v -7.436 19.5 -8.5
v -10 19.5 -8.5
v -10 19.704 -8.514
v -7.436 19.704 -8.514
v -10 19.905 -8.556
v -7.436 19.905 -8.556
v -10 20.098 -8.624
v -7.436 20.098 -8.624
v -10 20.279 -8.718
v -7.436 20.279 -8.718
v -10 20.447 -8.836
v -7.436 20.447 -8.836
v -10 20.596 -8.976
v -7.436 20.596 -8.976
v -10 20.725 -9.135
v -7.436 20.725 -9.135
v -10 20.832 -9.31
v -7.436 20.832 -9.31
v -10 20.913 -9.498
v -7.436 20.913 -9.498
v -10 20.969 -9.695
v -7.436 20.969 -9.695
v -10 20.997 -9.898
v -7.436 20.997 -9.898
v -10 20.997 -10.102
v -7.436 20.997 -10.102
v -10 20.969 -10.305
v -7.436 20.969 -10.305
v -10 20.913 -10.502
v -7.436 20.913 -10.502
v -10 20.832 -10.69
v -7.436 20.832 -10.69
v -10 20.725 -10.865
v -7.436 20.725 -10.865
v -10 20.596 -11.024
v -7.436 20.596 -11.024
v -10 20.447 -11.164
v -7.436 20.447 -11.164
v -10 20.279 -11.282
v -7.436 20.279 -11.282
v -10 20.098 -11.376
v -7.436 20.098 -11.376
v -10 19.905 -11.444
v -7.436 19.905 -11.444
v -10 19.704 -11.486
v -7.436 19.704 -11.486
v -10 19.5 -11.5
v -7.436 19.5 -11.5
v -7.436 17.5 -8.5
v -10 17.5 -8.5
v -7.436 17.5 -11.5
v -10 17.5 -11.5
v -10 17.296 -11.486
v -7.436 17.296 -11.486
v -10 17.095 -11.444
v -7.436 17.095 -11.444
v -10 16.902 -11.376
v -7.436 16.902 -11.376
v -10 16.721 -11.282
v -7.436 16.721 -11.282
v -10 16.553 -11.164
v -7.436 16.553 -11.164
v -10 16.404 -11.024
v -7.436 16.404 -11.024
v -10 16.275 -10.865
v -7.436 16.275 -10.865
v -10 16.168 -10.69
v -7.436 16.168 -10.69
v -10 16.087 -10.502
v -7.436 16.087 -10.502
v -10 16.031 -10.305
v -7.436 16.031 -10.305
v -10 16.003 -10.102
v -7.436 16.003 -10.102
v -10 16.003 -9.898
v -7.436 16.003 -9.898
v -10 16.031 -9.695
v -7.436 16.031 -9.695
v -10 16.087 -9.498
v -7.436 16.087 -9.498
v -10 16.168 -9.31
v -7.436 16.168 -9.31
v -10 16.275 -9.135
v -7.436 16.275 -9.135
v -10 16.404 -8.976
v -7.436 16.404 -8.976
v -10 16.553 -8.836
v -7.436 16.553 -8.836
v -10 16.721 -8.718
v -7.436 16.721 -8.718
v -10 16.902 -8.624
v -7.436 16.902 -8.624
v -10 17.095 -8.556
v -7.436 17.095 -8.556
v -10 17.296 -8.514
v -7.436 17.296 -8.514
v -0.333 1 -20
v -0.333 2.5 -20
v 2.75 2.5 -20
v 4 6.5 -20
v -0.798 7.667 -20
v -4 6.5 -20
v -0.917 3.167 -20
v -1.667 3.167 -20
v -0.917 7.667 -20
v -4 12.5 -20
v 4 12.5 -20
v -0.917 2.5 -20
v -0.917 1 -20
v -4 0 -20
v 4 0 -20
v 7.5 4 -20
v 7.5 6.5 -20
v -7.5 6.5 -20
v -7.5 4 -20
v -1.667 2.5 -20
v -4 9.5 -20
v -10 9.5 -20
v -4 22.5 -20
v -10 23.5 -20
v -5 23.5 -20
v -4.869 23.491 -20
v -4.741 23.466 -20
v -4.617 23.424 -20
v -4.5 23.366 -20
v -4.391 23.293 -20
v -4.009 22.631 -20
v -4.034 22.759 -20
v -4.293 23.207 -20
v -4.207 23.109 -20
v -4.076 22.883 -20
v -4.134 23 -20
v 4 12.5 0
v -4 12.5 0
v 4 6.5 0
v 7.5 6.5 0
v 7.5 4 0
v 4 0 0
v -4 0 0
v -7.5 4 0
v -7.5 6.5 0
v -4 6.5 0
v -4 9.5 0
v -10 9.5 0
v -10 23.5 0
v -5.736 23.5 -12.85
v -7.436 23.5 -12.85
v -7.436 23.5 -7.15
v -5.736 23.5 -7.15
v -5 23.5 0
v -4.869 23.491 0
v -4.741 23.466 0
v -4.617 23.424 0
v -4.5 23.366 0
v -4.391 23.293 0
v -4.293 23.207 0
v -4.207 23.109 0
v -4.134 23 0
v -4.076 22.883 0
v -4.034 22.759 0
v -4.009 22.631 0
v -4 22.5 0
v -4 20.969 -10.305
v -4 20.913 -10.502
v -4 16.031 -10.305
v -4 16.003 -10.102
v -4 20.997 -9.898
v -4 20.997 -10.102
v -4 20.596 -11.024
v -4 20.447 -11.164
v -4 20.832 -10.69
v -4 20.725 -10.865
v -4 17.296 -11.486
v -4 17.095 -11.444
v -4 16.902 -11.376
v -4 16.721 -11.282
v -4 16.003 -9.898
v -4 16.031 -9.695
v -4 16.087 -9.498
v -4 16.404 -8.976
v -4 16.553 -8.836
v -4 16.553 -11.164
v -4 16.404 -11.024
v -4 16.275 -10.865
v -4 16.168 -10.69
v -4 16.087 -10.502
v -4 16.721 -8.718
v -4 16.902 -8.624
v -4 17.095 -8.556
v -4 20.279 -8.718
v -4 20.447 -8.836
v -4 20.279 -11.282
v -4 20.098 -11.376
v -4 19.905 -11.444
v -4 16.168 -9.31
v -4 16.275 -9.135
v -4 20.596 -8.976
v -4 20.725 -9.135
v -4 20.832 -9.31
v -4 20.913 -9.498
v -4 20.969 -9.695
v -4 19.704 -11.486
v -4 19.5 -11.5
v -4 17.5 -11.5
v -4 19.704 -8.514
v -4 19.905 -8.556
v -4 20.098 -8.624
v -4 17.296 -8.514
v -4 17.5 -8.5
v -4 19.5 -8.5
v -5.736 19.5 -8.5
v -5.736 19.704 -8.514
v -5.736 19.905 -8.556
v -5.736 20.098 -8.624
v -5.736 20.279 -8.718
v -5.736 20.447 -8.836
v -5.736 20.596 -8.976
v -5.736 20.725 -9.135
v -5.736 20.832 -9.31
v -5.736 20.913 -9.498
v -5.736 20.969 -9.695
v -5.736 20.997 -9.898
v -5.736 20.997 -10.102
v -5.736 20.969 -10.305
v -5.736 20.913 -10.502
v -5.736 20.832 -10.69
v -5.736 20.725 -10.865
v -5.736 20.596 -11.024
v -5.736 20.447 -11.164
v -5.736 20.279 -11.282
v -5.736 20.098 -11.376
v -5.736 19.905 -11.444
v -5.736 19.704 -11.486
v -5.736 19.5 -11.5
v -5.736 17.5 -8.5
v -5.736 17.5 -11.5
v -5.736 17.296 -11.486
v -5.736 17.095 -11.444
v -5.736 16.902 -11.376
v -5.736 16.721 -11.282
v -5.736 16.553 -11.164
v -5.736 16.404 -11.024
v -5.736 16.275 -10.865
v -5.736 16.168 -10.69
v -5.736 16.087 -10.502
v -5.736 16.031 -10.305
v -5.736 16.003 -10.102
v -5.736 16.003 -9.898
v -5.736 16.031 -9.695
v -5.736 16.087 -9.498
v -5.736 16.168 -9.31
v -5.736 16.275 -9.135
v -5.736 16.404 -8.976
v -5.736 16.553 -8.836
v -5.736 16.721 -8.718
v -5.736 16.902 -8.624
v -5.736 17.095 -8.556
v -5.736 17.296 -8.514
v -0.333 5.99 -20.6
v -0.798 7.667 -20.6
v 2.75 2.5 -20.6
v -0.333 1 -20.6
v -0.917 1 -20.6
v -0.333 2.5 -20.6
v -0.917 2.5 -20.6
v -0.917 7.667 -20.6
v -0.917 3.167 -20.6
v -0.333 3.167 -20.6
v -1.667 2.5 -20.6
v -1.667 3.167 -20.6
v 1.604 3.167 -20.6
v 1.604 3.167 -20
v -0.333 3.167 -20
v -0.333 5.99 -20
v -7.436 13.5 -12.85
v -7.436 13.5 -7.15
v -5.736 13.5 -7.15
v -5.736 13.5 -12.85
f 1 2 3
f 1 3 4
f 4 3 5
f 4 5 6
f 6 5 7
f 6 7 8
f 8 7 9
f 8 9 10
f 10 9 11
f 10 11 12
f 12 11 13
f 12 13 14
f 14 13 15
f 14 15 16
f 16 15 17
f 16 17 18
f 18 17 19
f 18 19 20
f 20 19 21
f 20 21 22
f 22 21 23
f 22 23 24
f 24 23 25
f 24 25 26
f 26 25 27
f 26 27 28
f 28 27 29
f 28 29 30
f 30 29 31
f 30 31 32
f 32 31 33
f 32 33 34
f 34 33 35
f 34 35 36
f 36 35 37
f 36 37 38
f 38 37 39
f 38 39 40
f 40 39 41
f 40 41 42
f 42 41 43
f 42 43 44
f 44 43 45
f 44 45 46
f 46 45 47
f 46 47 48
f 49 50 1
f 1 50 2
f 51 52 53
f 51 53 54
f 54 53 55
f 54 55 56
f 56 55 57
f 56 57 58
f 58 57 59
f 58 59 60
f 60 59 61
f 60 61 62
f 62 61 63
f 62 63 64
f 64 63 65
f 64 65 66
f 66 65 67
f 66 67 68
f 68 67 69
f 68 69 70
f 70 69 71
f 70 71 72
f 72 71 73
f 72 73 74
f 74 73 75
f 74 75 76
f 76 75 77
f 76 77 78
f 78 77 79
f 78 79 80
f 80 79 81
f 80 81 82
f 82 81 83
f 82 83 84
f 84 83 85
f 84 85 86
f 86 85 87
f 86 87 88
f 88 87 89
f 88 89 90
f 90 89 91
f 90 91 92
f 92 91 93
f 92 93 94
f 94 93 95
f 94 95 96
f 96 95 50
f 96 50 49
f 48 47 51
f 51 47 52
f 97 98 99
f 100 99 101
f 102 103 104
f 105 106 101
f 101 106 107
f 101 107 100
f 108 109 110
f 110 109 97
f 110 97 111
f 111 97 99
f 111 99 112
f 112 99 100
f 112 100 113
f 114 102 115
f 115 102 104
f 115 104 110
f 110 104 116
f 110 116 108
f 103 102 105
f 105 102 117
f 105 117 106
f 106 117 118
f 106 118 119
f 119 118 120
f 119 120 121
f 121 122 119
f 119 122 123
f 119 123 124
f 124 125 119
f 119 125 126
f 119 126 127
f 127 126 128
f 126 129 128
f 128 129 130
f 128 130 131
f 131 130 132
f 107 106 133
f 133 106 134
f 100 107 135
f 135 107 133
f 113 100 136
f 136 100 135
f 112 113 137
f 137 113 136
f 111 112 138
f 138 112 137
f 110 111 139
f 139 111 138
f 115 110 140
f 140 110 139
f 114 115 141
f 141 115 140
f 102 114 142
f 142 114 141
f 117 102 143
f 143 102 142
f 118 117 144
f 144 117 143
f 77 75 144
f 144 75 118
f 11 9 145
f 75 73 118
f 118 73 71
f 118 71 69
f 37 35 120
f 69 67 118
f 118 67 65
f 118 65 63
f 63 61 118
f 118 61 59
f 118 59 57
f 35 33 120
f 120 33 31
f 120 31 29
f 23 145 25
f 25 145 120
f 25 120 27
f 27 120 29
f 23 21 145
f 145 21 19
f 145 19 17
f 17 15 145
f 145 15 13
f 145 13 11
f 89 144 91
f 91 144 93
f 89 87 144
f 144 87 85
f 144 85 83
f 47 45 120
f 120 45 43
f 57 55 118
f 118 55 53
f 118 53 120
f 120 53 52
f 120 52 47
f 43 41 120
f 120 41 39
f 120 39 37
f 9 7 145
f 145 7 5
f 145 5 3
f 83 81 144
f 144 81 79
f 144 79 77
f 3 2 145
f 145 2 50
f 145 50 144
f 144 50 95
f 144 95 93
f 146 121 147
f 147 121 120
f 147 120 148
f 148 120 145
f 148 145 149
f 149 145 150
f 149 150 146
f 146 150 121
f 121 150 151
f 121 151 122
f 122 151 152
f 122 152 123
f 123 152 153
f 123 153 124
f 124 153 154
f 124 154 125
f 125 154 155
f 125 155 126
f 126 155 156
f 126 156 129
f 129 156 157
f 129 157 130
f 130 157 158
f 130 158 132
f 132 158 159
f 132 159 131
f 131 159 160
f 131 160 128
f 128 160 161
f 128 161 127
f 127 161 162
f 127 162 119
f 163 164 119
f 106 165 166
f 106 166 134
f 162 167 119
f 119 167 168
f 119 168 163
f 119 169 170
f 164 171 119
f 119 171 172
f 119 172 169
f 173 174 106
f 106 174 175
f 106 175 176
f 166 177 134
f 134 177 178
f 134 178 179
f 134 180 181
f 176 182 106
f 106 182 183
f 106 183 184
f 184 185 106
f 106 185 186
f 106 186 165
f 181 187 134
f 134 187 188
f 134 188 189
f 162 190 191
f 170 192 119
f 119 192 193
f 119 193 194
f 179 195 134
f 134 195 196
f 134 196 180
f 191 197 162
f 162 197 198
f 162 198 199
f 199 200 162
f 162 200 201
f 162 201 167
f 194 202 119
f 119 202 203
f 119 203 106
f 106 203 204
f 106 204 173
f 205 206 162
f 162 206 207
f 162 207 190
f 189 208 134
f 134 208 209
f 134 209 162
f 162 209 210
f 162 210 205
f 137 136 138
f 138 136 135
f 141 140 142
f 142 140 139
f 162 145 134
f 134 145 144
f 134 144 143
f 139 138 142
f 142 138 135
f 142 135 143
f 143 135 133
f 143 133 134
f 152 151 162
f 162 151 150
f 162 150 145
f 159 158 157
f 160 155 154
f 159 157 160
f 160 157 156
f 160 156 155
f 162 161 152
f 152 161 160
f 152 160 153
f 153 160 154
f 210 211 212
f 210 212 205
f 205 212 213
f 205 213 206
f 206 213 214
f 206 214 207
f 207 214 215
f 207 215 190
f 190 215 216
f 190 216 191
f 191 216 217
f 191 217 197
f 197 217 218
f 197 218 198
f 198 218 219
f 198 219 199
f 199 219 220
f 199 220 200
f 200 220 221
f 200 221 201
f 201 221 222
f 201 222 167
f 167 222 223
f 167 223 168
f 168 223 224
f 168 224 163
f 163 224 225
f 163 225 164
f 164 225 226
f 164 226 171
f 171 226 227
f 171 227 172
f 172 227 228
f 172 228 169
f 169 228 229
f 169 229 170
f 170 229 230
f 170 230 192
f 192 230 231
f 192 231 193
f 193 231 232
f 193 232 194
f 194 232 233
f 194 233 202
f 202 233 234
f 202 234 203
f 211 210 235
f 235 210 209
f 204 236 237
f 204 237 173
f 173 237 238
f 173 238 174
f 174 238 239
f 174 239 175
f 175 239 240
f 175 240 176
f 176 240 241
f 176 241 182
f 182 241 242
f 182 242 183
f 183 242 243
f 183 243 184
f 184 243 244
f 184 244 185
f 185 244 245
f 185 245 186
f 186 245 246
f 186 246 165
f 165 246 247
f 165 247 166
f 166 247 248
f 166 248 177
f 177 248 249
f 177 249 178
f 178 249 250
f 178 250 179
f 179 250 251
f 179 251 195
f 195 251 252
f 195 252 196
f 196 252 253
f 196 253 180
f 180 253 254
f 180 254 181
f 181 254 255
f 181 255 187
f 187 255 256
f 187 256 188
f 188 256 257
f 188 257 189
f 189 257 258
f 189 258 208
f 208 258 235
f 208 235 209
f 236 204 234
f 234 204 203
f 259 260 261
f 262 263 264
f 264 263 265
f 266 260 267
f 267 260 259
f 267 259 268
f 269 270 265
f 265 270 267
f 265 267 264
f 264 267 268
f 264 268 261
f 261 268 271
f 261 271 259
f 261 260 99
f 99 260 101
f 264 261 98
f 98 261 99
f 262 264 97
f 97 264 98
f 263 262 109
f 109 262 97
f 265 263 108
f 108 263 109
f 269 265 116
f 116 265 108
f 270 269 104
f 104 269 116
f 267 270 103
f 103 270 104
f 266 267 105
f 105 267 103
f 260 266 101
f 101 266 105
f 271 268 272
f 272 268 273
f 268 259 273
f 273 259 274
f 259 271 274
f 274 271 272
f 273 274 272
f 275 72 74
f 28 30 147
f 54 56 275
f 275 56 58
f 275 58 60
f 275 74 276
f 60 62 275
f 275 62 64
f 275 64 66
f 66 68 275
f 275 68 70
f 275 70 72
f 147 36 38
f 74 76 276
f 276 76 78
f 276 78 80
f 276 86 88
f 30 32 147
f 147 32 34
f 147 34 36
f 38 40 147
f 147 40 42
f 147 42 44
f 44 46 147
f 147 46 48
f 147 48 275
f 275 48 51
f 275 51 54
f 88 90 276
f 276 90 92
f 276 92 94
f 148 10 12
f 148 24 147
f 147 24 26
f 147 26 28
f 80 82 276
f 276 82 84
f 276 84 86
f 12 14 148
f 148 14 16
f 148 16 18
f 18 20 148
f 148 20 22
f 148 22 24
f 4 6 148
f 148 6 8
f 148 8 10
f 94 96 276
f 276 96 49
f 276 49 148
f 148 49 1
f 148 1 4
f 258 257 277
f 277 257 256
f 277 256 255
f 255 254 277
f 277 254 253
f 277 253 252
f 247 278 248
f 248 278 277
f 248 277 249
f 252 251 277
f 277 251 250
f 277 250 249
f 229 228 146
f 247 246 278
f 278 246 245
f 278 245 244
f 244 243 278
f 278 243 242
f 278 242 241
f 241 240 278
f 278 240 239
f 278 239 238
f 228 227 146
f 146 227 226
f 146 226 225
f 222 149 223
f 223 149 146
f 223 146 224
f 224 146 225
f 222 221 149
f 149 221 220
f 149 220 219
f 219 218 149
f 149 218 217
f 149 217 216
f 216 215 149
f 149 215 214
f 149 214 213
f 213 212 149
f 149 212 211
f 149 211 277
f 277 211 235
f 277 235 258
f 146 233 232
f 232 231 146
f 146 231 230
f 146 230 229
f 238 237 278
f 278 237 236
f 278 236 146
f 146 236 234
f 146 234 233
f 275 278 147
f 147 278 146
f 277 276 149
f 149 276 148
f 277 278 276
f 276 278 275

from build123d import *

# Parameters (mm, degrees)
ESTRUSIONE_ESTRUSIONE1_DEPTH = 20
TAGLIO_ESTRUSIONE1_REACH     = 37.475
ESTRUSIONE_ESTRUSIONE4_DEPTH = 0.6
SCHIZZO12_W                  = 1.7
SCHIZZO12_H                  = 5.7
TAGLIO_ESTRUSIONE2_DEPTH     = 10


with BuildPart() as part:
    # Schizzo2 → Estrusione-Estrusione1 (new body)
    with BuildSketch(Plane.XY):
        with BuildLine():
            Line((-4, 9.5), (-10, 9.5))
            Line((-10, 9.5), (-10, 23.5))
            Line((-10, 23.5), (-5, 23.5))
            ThreePointArc((-5, 23.5), (-4.292893219, 23.207106781), (-4, 22.5))
            Line((-4, 22.5), (-4, 12.5))
            Line((-4, 12.5), (4, 12.5))
            Line((4, 12.5), (4, 9.5))
            Line((4, 9.5), (4, 6.5))
            Line((4, 6.5), (7.5, 6.5))
            Line((7.5, 6.5), (7.5, 4))
            Line((7.5, 4), (4, 0))
            Line((4, 0), (-4, 0))
            Line((-4, 0), (-7.5, 4))
            Line((-7.5, 4), (-7.5, 6.5))
            Line((-7.5, 6.5), (-4, 6.5))
            Line((-4, 6.5), (-4, 9.5))
        make_face()
    extrude(amount=-ESTRUSIONE_ESTRUSIONE1_DEPTH)

    # Schizzo6 → Taglio-Estrusione1 (cut, up to next)
    with BuildSketch(Plane.ZY.offset(10), mode=Mode.PRIVATE) as taglio_estrusione1_sk1:
        with BuildLine():
            Line((-8.5, 19.5), (-8.5, 17.5))
            ThreePointArc((-8.5, 17.5), (-10, 16), (-11.5, 17.5))
            Line((-11.5, 17.5), (-11.5, 19.5))
            ThreePointArc((-11.5, 19.5), (-10, 21), (-8.5, 19.5))
        make_face()
    taglio_estrusione1_tool1 = extrude(taglio_estrusione1_sk1.sketch, amount=-TAGLIO_ESTRUSIONE1_REACH, mode=Mode.PRIVATE) & part.part
    add(taglio_estrusione1_tool1.solids().sort_by_distance((-10, 18.5, -10))[0], mode=Mode.SUBTRACT)

    # Schizzo11 → Estrusione-Estrusione4 (add)
    with BuildSketch(Plane(origin=(0, 0, -20), x_dir=(-1, 0, 0), z_dir=(0, 0, -1))):
        Polygon((0.798177083, 7.666666667), (0.916666667, 7.666666667), (0.916666667, 3.166666667), (1.666666667, 3.166666667), (1.666666667, 2.5), (0.916666667, 2.5), (0.916666667, 1), (0.333333333, 1), (0.333333333, 2.5), (-2.75, 2.5), align=None)
        Polygon((0.333333333, 3.166666667), (0.333333333, 5.989583333), (-1.604166667, 3.166666667), align=None, mode=Mode.SUBTRACT)
    extrude(amount=ESTRUSIONE_ESTRUSIONE4_DEPTH)

    # Schizzo12 → Taglio-Estrusione2 (cut)
    with BuildSketch(Plane(origin=(0, 23.5, 0), x_dir=(1, 0, 0), z_dir=(0, 1, 0))):
        with Locations((-6.586432065, 10)):
            Rectangle(SCHIZZO12_W, SCHIZZO12_H)
    extrude(amount=-TAGLIO_ESTRUSIONE2_DEPTH, mode=Mode.SUBTRACT)


solid = part.part
